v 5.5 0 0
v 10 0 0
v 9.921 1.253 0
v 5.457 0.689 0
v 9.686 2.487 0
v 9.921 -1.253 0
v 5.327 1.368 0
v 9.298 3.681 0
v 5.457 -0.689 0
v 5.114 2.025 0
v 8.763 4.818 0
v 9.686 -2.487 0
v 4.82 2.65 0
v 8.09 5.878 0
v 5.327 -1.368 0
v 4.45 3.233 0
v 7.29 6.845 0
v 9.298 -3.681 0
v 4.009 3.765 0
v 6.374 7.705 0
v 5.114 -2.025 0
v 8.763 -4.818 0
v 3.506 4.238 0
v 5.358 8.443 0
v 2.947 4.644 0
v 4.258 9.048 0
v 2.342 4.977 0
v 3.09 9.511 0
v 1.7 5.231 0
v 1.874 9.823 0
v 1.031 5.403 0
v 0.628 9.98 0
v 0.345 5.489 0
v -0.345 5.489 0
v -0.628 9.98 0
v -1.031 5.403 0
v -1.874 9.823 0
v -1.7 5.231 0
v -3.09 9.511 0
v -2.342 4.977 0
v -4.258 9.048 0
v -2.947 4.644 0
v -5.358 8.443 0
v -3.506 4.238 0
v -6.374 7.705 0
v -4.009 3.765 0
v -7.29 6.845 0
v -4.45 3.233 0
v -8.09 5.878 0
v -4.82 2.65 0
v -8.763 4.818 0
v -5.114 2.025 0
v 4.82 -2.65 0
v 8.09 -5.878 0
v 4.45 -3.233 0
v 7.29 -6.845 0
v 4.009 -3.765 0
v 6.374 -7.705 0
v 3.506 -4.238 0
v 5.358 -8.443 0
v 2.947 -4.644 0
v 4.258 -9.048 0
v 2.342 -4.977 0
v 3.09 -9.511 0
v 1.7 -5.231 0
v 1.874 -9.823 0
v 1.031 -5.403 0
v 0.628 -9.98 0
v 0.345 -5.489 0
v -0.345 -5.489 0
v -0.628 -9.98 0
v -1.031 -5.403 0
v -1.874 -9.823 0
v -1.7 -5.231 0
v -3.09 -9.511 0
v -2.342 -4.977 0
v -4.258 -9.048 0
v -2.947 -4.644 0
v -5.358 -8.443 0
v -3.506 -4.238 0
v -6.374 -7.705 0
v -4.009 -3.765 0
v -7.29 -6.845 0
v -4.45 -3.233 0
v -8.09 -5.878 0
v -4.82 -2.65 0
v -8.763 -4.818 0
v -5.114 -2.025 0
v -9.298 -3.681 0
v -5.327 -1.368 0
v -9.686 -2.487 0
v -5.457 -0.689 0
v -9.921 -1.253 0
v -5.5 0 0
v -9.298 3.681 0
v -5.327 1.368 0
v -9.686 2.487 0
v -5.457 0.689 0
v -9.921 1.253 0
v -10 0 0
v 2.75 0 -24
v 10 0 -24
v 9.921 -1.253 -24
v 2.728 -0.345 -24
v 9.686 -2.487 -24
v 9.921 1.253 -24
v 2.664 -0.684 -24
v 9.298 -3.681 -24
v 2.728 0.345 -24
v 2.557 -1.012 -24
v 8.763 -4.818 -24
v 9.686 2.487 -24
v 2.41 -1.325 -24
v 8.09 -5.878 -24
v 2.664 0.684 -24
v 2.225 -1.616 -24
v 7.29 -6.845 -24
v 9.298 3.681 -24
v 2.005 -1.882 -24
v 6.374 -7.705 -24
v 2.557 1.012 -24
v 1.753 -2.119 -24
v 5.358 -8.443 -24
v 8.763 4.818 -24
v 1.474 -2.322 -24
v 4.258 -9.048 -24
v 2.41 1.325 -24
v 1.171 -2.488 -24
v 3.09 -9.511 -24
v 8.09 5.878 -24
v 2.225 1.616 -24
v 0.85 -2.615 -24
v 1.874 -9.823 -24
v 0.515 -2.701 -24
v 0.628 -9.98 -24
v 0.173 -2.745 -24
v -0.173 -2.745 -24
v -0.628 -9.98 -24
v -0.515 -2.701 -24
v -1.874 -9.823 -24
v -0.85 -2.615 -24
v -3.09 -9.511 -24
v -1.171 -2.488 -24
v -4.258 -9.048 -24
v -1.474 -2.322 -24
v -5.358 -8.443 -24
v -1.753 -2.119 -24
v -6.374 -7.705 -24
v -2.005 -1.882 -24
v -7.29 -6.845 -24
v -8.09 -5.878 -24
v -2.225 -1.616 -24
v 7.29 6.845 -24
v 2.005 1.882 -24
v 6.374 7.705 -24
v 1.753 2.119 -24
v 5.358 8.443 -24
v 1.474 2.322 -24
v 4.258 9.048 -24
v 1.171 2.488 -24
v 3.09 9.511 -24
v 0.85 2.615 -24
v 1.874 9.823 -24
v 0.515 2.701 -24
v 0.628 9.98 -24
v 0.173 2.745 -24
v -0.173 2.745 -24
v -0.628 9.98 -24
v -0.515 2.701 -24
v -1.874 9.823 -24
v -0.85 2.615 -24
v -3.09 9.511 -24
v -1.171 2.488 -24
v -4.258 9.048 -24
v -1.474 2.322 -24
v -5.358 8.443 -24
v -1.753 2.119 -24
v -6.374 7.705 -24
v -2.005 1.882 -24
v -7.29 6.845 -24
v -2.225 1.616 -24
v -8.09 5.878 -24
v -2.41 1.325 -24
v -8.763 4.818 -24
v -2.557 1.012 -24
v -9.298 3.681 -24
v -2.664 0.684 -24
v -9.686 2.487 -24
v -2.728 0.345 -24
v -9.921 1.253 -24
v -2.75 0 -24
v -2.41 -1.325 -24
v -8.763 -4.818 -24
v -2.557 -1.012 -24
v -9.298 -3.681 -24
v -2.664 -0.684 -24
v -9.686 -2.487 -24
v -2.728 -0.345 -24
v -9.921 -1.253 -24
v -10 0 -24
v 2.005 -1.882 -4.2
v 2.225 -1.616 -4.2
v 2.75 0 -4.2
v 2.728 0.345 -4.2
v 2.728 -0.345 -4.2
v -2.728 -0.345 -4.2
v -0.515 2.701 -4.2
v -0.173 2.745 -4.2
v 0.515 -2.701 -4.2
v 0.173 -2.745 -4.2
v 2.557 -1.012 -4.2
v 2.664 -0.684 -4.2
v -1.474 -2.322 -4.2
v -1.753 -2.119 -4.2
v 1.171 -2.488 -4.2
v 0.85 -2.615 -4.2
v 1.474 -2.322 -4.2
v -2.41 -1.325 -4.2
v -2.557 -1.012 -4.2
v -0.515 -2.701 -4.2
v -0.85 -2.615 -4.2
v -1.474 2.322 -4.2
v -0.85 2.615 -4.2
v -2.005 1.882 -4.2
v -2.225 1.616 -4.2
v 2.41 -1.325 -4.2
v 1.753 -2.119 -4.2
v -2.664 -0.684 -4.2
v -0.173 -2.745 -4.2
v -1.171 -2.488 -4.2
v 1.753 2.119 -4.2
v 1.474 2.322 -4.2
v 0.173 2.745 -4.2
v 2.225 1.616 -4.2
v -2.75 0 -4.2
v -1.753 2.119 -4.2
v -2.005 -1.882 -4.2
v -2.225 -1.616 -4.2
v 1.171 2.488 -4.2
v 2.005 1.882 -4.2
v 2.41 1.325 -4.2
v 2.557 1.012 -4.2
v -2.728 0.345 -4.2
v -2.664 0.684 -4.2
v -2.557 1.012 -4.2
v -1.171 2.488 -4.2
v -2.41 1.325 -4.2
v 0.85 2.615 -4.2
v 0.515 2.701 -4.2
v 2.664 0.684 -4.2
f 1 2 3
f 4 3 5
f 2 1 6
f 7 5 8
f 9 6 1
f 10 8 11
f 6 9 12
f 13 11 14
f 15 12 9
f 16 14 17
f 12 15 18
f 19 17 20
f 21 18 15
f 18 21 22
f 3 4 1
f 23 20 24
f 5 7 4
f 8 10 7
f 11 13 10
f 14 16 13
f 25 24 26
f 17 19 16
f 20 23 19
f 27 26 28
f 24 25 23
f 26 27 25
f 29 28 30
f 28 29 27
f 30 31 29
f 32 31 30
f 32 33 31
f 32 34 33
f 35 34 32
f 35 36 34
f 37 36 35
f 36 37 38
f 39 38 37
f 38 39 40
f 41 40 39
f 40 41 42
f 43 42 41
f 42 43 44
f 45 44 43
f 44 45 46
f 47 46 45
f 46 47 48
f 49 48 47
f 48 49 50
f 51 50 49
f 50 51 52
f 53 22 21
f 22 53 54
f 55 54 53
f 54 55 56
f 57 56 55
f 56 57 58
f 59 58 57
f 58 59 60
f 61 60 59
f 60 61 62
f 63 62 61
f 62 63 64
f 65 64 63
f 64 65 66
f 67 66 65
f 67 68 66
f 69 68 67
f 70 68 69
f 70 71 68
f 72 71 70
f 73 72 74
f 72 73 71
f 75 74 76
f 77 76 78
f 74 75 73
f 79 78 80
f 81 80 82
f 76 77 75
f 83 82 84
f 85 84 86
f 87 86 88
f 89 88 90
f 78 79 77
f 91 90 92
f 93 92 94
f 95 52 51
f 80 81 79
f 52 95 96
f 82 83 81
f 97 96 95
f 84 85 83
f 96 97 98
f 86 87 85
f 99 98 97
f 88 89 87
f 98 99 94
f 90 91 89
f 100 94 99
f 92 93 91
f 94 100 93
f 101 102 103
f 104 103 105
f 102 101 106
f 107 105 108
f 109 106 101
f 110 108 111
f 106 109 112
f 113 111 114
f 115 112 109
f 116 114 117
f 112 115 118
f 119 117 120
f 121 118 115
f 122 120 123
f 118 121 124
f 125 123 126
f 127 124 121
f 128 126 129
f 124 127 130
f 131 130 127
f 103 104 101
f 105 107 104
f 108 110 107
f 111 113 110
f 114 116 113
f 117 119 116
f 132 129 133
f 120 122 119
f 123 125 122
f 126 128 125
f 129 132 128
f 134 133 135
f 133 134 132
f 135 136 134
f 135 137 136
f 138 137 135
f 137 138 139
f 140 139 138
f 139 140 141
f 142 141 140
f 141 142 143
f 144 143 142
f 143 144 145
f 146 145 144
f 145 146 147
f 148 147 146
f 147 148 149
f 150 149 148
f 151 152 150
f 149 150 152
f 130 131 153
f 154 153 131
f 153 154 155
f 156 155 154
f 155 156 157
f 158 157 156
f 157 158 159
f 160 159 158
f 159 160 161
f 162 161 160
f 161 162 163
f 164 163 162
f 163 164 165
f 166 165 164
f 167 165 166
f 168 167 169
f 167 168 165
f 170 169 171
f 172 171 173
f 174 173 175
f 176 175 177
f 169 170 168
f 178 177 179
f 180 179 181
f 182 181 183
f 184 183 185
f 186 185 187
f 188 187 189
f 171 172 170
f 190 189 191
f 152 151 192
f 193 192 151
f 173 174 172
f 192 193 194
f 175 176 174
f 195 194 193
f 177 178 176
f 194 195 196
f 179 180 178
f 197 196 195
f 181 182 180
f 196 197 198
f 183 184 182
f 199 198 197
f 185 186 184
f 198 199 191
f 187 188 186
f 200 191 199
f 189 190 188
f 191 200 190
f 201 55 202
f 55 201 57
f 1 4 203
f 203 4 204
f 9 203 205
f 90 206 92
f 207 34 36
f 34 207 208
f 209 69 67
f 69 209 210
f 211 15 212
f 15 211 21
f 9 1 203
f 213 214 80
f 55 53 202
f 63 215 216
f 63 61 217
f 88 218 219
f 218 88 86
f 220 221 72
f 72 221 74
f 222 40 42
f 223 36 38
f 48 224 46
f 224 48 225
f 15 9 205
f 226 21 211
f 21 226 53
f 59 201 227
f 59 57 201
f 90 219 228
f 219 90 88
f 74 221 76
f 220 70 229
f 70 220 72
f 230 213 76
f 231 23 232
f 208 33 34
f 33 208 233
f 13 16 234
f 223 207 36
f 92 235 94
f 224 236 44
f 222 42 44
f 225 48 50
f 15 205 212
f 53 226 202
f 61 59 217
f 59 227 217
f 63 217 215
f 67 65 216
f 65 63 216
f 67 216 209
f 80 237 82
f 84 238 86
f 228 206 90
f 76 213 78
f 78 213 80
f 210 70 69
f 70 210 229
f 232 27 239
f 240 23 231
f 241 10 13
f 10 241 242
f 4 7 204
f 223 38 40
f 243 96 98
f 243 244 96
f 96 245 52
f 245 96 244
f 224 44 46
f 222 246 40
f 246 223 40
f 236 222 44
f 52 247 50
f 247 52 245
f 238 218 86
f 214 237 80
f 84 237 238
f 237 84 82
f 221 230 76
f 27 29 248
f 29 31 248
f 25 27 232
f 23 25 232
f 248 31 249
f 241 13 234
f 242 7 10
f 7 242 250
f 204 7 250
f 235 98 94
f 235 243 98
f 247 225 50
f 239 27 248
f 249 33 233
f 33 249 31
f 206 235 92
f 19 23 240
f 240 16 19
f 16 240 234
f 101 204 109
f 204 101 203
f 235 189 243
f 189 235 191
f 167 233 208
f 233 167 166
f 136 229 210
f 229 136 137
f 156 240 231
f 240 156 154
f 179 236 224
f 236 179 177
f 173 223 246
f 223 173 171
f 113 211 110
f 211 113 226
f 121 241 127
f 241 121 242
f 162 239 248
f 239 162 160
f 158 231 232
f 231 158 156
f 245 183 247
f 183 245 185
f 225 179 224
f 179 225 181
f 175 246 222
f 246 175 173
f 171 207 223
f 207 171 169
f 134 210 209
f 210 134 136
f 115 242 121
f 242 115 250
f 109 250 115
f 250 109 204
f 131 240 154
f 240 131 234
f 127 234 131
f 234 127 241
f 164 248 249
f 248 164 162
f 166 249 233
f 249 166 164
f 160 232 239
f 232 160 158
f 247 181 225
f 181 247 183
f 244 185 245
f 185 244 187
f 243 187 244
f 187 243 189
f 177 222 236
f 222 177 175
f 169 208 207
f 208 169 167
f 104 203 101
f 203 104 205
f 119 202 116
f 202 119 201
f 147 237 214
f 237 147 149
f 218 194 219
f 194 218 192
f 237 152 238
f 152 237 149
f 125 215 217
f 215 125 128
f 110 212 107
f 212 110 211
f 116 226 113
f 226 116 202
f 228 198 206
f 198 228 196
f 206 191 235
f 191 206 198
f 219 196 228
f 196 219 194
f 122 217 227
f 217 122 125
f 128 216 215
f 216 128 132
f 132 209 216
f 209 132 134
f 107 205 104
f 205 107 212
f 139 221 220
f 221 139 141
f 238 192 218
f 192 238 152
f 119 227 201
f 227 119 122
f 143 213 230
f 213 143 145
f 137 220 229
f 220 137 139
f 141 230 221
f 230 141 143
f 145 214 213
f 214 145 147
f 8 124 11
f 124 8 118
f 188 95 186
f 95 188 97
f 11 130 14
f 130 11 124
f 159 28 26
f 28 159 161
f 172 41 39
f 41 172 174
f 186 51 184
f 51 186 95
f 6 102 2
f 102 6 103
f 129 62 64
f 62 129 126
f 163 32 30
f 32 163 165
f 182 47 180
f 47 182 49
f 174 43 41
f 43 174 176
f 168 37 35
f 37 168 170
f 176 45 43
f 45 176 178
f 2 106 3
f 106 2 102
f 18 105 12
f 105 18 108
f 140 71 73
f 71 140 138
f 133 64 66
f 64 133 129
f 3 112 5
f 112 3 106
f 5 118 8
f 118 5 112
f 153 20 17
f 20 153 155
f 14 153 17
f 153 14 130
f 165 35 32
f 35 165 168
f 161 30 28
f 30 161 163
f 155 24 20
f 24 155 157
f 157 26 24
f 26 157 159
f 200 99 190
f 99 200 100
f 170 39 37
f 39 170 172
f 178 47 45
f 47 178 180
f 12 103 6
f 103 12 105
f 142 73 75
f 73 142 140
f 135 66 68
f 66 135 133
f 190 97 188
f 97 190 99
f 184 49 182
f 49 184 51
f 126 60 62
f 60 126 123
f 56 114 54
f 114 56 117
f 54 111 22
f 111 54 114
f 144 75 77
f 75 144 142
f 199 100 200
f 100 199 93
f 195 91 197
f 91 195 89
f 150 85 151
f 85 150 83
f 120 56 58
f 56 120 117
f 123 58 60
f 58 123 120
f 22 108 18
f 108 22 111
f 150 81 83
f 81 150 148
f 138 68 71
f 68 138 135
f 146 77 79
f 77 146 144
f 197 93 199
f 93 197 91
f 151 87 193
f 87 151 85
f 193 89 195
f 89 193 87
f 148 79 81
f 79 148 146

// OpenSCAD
$fn = 50;


difference() {
	union() {
		translate(v = [0, 0, -24.0000000000]) {
			cylinder(h = 24, r = 10.0000000000);
		}
	}
	union() {
		translate(v = [0, 0, 0]) {
			rotate(a = [0, 0, 0]) {
				difference() {
					union() {
						#translate(v = [0, 0, -24.0000000000]) {
							cylinder(h = 24, r = 2.2500000000);
						}
						#translate(v = [0, 0, -4.2000000000]) {
							cylinder(h = 4.2000000000, r = 10.0000000000, r1 = 2.7500000000, r2 = 5.5000000000);
						}
						#translate(v = [0, 0, -24.0000000000]) {
							cylinder(h = 24, r = 2.7500000000);
						}
						#translate(v = [0, 0, -24.0000000000]) {
							cylinder(h = 24, r = 2.2500000000);
						}
					}
					union();
				}
			}
		}
	}
}
